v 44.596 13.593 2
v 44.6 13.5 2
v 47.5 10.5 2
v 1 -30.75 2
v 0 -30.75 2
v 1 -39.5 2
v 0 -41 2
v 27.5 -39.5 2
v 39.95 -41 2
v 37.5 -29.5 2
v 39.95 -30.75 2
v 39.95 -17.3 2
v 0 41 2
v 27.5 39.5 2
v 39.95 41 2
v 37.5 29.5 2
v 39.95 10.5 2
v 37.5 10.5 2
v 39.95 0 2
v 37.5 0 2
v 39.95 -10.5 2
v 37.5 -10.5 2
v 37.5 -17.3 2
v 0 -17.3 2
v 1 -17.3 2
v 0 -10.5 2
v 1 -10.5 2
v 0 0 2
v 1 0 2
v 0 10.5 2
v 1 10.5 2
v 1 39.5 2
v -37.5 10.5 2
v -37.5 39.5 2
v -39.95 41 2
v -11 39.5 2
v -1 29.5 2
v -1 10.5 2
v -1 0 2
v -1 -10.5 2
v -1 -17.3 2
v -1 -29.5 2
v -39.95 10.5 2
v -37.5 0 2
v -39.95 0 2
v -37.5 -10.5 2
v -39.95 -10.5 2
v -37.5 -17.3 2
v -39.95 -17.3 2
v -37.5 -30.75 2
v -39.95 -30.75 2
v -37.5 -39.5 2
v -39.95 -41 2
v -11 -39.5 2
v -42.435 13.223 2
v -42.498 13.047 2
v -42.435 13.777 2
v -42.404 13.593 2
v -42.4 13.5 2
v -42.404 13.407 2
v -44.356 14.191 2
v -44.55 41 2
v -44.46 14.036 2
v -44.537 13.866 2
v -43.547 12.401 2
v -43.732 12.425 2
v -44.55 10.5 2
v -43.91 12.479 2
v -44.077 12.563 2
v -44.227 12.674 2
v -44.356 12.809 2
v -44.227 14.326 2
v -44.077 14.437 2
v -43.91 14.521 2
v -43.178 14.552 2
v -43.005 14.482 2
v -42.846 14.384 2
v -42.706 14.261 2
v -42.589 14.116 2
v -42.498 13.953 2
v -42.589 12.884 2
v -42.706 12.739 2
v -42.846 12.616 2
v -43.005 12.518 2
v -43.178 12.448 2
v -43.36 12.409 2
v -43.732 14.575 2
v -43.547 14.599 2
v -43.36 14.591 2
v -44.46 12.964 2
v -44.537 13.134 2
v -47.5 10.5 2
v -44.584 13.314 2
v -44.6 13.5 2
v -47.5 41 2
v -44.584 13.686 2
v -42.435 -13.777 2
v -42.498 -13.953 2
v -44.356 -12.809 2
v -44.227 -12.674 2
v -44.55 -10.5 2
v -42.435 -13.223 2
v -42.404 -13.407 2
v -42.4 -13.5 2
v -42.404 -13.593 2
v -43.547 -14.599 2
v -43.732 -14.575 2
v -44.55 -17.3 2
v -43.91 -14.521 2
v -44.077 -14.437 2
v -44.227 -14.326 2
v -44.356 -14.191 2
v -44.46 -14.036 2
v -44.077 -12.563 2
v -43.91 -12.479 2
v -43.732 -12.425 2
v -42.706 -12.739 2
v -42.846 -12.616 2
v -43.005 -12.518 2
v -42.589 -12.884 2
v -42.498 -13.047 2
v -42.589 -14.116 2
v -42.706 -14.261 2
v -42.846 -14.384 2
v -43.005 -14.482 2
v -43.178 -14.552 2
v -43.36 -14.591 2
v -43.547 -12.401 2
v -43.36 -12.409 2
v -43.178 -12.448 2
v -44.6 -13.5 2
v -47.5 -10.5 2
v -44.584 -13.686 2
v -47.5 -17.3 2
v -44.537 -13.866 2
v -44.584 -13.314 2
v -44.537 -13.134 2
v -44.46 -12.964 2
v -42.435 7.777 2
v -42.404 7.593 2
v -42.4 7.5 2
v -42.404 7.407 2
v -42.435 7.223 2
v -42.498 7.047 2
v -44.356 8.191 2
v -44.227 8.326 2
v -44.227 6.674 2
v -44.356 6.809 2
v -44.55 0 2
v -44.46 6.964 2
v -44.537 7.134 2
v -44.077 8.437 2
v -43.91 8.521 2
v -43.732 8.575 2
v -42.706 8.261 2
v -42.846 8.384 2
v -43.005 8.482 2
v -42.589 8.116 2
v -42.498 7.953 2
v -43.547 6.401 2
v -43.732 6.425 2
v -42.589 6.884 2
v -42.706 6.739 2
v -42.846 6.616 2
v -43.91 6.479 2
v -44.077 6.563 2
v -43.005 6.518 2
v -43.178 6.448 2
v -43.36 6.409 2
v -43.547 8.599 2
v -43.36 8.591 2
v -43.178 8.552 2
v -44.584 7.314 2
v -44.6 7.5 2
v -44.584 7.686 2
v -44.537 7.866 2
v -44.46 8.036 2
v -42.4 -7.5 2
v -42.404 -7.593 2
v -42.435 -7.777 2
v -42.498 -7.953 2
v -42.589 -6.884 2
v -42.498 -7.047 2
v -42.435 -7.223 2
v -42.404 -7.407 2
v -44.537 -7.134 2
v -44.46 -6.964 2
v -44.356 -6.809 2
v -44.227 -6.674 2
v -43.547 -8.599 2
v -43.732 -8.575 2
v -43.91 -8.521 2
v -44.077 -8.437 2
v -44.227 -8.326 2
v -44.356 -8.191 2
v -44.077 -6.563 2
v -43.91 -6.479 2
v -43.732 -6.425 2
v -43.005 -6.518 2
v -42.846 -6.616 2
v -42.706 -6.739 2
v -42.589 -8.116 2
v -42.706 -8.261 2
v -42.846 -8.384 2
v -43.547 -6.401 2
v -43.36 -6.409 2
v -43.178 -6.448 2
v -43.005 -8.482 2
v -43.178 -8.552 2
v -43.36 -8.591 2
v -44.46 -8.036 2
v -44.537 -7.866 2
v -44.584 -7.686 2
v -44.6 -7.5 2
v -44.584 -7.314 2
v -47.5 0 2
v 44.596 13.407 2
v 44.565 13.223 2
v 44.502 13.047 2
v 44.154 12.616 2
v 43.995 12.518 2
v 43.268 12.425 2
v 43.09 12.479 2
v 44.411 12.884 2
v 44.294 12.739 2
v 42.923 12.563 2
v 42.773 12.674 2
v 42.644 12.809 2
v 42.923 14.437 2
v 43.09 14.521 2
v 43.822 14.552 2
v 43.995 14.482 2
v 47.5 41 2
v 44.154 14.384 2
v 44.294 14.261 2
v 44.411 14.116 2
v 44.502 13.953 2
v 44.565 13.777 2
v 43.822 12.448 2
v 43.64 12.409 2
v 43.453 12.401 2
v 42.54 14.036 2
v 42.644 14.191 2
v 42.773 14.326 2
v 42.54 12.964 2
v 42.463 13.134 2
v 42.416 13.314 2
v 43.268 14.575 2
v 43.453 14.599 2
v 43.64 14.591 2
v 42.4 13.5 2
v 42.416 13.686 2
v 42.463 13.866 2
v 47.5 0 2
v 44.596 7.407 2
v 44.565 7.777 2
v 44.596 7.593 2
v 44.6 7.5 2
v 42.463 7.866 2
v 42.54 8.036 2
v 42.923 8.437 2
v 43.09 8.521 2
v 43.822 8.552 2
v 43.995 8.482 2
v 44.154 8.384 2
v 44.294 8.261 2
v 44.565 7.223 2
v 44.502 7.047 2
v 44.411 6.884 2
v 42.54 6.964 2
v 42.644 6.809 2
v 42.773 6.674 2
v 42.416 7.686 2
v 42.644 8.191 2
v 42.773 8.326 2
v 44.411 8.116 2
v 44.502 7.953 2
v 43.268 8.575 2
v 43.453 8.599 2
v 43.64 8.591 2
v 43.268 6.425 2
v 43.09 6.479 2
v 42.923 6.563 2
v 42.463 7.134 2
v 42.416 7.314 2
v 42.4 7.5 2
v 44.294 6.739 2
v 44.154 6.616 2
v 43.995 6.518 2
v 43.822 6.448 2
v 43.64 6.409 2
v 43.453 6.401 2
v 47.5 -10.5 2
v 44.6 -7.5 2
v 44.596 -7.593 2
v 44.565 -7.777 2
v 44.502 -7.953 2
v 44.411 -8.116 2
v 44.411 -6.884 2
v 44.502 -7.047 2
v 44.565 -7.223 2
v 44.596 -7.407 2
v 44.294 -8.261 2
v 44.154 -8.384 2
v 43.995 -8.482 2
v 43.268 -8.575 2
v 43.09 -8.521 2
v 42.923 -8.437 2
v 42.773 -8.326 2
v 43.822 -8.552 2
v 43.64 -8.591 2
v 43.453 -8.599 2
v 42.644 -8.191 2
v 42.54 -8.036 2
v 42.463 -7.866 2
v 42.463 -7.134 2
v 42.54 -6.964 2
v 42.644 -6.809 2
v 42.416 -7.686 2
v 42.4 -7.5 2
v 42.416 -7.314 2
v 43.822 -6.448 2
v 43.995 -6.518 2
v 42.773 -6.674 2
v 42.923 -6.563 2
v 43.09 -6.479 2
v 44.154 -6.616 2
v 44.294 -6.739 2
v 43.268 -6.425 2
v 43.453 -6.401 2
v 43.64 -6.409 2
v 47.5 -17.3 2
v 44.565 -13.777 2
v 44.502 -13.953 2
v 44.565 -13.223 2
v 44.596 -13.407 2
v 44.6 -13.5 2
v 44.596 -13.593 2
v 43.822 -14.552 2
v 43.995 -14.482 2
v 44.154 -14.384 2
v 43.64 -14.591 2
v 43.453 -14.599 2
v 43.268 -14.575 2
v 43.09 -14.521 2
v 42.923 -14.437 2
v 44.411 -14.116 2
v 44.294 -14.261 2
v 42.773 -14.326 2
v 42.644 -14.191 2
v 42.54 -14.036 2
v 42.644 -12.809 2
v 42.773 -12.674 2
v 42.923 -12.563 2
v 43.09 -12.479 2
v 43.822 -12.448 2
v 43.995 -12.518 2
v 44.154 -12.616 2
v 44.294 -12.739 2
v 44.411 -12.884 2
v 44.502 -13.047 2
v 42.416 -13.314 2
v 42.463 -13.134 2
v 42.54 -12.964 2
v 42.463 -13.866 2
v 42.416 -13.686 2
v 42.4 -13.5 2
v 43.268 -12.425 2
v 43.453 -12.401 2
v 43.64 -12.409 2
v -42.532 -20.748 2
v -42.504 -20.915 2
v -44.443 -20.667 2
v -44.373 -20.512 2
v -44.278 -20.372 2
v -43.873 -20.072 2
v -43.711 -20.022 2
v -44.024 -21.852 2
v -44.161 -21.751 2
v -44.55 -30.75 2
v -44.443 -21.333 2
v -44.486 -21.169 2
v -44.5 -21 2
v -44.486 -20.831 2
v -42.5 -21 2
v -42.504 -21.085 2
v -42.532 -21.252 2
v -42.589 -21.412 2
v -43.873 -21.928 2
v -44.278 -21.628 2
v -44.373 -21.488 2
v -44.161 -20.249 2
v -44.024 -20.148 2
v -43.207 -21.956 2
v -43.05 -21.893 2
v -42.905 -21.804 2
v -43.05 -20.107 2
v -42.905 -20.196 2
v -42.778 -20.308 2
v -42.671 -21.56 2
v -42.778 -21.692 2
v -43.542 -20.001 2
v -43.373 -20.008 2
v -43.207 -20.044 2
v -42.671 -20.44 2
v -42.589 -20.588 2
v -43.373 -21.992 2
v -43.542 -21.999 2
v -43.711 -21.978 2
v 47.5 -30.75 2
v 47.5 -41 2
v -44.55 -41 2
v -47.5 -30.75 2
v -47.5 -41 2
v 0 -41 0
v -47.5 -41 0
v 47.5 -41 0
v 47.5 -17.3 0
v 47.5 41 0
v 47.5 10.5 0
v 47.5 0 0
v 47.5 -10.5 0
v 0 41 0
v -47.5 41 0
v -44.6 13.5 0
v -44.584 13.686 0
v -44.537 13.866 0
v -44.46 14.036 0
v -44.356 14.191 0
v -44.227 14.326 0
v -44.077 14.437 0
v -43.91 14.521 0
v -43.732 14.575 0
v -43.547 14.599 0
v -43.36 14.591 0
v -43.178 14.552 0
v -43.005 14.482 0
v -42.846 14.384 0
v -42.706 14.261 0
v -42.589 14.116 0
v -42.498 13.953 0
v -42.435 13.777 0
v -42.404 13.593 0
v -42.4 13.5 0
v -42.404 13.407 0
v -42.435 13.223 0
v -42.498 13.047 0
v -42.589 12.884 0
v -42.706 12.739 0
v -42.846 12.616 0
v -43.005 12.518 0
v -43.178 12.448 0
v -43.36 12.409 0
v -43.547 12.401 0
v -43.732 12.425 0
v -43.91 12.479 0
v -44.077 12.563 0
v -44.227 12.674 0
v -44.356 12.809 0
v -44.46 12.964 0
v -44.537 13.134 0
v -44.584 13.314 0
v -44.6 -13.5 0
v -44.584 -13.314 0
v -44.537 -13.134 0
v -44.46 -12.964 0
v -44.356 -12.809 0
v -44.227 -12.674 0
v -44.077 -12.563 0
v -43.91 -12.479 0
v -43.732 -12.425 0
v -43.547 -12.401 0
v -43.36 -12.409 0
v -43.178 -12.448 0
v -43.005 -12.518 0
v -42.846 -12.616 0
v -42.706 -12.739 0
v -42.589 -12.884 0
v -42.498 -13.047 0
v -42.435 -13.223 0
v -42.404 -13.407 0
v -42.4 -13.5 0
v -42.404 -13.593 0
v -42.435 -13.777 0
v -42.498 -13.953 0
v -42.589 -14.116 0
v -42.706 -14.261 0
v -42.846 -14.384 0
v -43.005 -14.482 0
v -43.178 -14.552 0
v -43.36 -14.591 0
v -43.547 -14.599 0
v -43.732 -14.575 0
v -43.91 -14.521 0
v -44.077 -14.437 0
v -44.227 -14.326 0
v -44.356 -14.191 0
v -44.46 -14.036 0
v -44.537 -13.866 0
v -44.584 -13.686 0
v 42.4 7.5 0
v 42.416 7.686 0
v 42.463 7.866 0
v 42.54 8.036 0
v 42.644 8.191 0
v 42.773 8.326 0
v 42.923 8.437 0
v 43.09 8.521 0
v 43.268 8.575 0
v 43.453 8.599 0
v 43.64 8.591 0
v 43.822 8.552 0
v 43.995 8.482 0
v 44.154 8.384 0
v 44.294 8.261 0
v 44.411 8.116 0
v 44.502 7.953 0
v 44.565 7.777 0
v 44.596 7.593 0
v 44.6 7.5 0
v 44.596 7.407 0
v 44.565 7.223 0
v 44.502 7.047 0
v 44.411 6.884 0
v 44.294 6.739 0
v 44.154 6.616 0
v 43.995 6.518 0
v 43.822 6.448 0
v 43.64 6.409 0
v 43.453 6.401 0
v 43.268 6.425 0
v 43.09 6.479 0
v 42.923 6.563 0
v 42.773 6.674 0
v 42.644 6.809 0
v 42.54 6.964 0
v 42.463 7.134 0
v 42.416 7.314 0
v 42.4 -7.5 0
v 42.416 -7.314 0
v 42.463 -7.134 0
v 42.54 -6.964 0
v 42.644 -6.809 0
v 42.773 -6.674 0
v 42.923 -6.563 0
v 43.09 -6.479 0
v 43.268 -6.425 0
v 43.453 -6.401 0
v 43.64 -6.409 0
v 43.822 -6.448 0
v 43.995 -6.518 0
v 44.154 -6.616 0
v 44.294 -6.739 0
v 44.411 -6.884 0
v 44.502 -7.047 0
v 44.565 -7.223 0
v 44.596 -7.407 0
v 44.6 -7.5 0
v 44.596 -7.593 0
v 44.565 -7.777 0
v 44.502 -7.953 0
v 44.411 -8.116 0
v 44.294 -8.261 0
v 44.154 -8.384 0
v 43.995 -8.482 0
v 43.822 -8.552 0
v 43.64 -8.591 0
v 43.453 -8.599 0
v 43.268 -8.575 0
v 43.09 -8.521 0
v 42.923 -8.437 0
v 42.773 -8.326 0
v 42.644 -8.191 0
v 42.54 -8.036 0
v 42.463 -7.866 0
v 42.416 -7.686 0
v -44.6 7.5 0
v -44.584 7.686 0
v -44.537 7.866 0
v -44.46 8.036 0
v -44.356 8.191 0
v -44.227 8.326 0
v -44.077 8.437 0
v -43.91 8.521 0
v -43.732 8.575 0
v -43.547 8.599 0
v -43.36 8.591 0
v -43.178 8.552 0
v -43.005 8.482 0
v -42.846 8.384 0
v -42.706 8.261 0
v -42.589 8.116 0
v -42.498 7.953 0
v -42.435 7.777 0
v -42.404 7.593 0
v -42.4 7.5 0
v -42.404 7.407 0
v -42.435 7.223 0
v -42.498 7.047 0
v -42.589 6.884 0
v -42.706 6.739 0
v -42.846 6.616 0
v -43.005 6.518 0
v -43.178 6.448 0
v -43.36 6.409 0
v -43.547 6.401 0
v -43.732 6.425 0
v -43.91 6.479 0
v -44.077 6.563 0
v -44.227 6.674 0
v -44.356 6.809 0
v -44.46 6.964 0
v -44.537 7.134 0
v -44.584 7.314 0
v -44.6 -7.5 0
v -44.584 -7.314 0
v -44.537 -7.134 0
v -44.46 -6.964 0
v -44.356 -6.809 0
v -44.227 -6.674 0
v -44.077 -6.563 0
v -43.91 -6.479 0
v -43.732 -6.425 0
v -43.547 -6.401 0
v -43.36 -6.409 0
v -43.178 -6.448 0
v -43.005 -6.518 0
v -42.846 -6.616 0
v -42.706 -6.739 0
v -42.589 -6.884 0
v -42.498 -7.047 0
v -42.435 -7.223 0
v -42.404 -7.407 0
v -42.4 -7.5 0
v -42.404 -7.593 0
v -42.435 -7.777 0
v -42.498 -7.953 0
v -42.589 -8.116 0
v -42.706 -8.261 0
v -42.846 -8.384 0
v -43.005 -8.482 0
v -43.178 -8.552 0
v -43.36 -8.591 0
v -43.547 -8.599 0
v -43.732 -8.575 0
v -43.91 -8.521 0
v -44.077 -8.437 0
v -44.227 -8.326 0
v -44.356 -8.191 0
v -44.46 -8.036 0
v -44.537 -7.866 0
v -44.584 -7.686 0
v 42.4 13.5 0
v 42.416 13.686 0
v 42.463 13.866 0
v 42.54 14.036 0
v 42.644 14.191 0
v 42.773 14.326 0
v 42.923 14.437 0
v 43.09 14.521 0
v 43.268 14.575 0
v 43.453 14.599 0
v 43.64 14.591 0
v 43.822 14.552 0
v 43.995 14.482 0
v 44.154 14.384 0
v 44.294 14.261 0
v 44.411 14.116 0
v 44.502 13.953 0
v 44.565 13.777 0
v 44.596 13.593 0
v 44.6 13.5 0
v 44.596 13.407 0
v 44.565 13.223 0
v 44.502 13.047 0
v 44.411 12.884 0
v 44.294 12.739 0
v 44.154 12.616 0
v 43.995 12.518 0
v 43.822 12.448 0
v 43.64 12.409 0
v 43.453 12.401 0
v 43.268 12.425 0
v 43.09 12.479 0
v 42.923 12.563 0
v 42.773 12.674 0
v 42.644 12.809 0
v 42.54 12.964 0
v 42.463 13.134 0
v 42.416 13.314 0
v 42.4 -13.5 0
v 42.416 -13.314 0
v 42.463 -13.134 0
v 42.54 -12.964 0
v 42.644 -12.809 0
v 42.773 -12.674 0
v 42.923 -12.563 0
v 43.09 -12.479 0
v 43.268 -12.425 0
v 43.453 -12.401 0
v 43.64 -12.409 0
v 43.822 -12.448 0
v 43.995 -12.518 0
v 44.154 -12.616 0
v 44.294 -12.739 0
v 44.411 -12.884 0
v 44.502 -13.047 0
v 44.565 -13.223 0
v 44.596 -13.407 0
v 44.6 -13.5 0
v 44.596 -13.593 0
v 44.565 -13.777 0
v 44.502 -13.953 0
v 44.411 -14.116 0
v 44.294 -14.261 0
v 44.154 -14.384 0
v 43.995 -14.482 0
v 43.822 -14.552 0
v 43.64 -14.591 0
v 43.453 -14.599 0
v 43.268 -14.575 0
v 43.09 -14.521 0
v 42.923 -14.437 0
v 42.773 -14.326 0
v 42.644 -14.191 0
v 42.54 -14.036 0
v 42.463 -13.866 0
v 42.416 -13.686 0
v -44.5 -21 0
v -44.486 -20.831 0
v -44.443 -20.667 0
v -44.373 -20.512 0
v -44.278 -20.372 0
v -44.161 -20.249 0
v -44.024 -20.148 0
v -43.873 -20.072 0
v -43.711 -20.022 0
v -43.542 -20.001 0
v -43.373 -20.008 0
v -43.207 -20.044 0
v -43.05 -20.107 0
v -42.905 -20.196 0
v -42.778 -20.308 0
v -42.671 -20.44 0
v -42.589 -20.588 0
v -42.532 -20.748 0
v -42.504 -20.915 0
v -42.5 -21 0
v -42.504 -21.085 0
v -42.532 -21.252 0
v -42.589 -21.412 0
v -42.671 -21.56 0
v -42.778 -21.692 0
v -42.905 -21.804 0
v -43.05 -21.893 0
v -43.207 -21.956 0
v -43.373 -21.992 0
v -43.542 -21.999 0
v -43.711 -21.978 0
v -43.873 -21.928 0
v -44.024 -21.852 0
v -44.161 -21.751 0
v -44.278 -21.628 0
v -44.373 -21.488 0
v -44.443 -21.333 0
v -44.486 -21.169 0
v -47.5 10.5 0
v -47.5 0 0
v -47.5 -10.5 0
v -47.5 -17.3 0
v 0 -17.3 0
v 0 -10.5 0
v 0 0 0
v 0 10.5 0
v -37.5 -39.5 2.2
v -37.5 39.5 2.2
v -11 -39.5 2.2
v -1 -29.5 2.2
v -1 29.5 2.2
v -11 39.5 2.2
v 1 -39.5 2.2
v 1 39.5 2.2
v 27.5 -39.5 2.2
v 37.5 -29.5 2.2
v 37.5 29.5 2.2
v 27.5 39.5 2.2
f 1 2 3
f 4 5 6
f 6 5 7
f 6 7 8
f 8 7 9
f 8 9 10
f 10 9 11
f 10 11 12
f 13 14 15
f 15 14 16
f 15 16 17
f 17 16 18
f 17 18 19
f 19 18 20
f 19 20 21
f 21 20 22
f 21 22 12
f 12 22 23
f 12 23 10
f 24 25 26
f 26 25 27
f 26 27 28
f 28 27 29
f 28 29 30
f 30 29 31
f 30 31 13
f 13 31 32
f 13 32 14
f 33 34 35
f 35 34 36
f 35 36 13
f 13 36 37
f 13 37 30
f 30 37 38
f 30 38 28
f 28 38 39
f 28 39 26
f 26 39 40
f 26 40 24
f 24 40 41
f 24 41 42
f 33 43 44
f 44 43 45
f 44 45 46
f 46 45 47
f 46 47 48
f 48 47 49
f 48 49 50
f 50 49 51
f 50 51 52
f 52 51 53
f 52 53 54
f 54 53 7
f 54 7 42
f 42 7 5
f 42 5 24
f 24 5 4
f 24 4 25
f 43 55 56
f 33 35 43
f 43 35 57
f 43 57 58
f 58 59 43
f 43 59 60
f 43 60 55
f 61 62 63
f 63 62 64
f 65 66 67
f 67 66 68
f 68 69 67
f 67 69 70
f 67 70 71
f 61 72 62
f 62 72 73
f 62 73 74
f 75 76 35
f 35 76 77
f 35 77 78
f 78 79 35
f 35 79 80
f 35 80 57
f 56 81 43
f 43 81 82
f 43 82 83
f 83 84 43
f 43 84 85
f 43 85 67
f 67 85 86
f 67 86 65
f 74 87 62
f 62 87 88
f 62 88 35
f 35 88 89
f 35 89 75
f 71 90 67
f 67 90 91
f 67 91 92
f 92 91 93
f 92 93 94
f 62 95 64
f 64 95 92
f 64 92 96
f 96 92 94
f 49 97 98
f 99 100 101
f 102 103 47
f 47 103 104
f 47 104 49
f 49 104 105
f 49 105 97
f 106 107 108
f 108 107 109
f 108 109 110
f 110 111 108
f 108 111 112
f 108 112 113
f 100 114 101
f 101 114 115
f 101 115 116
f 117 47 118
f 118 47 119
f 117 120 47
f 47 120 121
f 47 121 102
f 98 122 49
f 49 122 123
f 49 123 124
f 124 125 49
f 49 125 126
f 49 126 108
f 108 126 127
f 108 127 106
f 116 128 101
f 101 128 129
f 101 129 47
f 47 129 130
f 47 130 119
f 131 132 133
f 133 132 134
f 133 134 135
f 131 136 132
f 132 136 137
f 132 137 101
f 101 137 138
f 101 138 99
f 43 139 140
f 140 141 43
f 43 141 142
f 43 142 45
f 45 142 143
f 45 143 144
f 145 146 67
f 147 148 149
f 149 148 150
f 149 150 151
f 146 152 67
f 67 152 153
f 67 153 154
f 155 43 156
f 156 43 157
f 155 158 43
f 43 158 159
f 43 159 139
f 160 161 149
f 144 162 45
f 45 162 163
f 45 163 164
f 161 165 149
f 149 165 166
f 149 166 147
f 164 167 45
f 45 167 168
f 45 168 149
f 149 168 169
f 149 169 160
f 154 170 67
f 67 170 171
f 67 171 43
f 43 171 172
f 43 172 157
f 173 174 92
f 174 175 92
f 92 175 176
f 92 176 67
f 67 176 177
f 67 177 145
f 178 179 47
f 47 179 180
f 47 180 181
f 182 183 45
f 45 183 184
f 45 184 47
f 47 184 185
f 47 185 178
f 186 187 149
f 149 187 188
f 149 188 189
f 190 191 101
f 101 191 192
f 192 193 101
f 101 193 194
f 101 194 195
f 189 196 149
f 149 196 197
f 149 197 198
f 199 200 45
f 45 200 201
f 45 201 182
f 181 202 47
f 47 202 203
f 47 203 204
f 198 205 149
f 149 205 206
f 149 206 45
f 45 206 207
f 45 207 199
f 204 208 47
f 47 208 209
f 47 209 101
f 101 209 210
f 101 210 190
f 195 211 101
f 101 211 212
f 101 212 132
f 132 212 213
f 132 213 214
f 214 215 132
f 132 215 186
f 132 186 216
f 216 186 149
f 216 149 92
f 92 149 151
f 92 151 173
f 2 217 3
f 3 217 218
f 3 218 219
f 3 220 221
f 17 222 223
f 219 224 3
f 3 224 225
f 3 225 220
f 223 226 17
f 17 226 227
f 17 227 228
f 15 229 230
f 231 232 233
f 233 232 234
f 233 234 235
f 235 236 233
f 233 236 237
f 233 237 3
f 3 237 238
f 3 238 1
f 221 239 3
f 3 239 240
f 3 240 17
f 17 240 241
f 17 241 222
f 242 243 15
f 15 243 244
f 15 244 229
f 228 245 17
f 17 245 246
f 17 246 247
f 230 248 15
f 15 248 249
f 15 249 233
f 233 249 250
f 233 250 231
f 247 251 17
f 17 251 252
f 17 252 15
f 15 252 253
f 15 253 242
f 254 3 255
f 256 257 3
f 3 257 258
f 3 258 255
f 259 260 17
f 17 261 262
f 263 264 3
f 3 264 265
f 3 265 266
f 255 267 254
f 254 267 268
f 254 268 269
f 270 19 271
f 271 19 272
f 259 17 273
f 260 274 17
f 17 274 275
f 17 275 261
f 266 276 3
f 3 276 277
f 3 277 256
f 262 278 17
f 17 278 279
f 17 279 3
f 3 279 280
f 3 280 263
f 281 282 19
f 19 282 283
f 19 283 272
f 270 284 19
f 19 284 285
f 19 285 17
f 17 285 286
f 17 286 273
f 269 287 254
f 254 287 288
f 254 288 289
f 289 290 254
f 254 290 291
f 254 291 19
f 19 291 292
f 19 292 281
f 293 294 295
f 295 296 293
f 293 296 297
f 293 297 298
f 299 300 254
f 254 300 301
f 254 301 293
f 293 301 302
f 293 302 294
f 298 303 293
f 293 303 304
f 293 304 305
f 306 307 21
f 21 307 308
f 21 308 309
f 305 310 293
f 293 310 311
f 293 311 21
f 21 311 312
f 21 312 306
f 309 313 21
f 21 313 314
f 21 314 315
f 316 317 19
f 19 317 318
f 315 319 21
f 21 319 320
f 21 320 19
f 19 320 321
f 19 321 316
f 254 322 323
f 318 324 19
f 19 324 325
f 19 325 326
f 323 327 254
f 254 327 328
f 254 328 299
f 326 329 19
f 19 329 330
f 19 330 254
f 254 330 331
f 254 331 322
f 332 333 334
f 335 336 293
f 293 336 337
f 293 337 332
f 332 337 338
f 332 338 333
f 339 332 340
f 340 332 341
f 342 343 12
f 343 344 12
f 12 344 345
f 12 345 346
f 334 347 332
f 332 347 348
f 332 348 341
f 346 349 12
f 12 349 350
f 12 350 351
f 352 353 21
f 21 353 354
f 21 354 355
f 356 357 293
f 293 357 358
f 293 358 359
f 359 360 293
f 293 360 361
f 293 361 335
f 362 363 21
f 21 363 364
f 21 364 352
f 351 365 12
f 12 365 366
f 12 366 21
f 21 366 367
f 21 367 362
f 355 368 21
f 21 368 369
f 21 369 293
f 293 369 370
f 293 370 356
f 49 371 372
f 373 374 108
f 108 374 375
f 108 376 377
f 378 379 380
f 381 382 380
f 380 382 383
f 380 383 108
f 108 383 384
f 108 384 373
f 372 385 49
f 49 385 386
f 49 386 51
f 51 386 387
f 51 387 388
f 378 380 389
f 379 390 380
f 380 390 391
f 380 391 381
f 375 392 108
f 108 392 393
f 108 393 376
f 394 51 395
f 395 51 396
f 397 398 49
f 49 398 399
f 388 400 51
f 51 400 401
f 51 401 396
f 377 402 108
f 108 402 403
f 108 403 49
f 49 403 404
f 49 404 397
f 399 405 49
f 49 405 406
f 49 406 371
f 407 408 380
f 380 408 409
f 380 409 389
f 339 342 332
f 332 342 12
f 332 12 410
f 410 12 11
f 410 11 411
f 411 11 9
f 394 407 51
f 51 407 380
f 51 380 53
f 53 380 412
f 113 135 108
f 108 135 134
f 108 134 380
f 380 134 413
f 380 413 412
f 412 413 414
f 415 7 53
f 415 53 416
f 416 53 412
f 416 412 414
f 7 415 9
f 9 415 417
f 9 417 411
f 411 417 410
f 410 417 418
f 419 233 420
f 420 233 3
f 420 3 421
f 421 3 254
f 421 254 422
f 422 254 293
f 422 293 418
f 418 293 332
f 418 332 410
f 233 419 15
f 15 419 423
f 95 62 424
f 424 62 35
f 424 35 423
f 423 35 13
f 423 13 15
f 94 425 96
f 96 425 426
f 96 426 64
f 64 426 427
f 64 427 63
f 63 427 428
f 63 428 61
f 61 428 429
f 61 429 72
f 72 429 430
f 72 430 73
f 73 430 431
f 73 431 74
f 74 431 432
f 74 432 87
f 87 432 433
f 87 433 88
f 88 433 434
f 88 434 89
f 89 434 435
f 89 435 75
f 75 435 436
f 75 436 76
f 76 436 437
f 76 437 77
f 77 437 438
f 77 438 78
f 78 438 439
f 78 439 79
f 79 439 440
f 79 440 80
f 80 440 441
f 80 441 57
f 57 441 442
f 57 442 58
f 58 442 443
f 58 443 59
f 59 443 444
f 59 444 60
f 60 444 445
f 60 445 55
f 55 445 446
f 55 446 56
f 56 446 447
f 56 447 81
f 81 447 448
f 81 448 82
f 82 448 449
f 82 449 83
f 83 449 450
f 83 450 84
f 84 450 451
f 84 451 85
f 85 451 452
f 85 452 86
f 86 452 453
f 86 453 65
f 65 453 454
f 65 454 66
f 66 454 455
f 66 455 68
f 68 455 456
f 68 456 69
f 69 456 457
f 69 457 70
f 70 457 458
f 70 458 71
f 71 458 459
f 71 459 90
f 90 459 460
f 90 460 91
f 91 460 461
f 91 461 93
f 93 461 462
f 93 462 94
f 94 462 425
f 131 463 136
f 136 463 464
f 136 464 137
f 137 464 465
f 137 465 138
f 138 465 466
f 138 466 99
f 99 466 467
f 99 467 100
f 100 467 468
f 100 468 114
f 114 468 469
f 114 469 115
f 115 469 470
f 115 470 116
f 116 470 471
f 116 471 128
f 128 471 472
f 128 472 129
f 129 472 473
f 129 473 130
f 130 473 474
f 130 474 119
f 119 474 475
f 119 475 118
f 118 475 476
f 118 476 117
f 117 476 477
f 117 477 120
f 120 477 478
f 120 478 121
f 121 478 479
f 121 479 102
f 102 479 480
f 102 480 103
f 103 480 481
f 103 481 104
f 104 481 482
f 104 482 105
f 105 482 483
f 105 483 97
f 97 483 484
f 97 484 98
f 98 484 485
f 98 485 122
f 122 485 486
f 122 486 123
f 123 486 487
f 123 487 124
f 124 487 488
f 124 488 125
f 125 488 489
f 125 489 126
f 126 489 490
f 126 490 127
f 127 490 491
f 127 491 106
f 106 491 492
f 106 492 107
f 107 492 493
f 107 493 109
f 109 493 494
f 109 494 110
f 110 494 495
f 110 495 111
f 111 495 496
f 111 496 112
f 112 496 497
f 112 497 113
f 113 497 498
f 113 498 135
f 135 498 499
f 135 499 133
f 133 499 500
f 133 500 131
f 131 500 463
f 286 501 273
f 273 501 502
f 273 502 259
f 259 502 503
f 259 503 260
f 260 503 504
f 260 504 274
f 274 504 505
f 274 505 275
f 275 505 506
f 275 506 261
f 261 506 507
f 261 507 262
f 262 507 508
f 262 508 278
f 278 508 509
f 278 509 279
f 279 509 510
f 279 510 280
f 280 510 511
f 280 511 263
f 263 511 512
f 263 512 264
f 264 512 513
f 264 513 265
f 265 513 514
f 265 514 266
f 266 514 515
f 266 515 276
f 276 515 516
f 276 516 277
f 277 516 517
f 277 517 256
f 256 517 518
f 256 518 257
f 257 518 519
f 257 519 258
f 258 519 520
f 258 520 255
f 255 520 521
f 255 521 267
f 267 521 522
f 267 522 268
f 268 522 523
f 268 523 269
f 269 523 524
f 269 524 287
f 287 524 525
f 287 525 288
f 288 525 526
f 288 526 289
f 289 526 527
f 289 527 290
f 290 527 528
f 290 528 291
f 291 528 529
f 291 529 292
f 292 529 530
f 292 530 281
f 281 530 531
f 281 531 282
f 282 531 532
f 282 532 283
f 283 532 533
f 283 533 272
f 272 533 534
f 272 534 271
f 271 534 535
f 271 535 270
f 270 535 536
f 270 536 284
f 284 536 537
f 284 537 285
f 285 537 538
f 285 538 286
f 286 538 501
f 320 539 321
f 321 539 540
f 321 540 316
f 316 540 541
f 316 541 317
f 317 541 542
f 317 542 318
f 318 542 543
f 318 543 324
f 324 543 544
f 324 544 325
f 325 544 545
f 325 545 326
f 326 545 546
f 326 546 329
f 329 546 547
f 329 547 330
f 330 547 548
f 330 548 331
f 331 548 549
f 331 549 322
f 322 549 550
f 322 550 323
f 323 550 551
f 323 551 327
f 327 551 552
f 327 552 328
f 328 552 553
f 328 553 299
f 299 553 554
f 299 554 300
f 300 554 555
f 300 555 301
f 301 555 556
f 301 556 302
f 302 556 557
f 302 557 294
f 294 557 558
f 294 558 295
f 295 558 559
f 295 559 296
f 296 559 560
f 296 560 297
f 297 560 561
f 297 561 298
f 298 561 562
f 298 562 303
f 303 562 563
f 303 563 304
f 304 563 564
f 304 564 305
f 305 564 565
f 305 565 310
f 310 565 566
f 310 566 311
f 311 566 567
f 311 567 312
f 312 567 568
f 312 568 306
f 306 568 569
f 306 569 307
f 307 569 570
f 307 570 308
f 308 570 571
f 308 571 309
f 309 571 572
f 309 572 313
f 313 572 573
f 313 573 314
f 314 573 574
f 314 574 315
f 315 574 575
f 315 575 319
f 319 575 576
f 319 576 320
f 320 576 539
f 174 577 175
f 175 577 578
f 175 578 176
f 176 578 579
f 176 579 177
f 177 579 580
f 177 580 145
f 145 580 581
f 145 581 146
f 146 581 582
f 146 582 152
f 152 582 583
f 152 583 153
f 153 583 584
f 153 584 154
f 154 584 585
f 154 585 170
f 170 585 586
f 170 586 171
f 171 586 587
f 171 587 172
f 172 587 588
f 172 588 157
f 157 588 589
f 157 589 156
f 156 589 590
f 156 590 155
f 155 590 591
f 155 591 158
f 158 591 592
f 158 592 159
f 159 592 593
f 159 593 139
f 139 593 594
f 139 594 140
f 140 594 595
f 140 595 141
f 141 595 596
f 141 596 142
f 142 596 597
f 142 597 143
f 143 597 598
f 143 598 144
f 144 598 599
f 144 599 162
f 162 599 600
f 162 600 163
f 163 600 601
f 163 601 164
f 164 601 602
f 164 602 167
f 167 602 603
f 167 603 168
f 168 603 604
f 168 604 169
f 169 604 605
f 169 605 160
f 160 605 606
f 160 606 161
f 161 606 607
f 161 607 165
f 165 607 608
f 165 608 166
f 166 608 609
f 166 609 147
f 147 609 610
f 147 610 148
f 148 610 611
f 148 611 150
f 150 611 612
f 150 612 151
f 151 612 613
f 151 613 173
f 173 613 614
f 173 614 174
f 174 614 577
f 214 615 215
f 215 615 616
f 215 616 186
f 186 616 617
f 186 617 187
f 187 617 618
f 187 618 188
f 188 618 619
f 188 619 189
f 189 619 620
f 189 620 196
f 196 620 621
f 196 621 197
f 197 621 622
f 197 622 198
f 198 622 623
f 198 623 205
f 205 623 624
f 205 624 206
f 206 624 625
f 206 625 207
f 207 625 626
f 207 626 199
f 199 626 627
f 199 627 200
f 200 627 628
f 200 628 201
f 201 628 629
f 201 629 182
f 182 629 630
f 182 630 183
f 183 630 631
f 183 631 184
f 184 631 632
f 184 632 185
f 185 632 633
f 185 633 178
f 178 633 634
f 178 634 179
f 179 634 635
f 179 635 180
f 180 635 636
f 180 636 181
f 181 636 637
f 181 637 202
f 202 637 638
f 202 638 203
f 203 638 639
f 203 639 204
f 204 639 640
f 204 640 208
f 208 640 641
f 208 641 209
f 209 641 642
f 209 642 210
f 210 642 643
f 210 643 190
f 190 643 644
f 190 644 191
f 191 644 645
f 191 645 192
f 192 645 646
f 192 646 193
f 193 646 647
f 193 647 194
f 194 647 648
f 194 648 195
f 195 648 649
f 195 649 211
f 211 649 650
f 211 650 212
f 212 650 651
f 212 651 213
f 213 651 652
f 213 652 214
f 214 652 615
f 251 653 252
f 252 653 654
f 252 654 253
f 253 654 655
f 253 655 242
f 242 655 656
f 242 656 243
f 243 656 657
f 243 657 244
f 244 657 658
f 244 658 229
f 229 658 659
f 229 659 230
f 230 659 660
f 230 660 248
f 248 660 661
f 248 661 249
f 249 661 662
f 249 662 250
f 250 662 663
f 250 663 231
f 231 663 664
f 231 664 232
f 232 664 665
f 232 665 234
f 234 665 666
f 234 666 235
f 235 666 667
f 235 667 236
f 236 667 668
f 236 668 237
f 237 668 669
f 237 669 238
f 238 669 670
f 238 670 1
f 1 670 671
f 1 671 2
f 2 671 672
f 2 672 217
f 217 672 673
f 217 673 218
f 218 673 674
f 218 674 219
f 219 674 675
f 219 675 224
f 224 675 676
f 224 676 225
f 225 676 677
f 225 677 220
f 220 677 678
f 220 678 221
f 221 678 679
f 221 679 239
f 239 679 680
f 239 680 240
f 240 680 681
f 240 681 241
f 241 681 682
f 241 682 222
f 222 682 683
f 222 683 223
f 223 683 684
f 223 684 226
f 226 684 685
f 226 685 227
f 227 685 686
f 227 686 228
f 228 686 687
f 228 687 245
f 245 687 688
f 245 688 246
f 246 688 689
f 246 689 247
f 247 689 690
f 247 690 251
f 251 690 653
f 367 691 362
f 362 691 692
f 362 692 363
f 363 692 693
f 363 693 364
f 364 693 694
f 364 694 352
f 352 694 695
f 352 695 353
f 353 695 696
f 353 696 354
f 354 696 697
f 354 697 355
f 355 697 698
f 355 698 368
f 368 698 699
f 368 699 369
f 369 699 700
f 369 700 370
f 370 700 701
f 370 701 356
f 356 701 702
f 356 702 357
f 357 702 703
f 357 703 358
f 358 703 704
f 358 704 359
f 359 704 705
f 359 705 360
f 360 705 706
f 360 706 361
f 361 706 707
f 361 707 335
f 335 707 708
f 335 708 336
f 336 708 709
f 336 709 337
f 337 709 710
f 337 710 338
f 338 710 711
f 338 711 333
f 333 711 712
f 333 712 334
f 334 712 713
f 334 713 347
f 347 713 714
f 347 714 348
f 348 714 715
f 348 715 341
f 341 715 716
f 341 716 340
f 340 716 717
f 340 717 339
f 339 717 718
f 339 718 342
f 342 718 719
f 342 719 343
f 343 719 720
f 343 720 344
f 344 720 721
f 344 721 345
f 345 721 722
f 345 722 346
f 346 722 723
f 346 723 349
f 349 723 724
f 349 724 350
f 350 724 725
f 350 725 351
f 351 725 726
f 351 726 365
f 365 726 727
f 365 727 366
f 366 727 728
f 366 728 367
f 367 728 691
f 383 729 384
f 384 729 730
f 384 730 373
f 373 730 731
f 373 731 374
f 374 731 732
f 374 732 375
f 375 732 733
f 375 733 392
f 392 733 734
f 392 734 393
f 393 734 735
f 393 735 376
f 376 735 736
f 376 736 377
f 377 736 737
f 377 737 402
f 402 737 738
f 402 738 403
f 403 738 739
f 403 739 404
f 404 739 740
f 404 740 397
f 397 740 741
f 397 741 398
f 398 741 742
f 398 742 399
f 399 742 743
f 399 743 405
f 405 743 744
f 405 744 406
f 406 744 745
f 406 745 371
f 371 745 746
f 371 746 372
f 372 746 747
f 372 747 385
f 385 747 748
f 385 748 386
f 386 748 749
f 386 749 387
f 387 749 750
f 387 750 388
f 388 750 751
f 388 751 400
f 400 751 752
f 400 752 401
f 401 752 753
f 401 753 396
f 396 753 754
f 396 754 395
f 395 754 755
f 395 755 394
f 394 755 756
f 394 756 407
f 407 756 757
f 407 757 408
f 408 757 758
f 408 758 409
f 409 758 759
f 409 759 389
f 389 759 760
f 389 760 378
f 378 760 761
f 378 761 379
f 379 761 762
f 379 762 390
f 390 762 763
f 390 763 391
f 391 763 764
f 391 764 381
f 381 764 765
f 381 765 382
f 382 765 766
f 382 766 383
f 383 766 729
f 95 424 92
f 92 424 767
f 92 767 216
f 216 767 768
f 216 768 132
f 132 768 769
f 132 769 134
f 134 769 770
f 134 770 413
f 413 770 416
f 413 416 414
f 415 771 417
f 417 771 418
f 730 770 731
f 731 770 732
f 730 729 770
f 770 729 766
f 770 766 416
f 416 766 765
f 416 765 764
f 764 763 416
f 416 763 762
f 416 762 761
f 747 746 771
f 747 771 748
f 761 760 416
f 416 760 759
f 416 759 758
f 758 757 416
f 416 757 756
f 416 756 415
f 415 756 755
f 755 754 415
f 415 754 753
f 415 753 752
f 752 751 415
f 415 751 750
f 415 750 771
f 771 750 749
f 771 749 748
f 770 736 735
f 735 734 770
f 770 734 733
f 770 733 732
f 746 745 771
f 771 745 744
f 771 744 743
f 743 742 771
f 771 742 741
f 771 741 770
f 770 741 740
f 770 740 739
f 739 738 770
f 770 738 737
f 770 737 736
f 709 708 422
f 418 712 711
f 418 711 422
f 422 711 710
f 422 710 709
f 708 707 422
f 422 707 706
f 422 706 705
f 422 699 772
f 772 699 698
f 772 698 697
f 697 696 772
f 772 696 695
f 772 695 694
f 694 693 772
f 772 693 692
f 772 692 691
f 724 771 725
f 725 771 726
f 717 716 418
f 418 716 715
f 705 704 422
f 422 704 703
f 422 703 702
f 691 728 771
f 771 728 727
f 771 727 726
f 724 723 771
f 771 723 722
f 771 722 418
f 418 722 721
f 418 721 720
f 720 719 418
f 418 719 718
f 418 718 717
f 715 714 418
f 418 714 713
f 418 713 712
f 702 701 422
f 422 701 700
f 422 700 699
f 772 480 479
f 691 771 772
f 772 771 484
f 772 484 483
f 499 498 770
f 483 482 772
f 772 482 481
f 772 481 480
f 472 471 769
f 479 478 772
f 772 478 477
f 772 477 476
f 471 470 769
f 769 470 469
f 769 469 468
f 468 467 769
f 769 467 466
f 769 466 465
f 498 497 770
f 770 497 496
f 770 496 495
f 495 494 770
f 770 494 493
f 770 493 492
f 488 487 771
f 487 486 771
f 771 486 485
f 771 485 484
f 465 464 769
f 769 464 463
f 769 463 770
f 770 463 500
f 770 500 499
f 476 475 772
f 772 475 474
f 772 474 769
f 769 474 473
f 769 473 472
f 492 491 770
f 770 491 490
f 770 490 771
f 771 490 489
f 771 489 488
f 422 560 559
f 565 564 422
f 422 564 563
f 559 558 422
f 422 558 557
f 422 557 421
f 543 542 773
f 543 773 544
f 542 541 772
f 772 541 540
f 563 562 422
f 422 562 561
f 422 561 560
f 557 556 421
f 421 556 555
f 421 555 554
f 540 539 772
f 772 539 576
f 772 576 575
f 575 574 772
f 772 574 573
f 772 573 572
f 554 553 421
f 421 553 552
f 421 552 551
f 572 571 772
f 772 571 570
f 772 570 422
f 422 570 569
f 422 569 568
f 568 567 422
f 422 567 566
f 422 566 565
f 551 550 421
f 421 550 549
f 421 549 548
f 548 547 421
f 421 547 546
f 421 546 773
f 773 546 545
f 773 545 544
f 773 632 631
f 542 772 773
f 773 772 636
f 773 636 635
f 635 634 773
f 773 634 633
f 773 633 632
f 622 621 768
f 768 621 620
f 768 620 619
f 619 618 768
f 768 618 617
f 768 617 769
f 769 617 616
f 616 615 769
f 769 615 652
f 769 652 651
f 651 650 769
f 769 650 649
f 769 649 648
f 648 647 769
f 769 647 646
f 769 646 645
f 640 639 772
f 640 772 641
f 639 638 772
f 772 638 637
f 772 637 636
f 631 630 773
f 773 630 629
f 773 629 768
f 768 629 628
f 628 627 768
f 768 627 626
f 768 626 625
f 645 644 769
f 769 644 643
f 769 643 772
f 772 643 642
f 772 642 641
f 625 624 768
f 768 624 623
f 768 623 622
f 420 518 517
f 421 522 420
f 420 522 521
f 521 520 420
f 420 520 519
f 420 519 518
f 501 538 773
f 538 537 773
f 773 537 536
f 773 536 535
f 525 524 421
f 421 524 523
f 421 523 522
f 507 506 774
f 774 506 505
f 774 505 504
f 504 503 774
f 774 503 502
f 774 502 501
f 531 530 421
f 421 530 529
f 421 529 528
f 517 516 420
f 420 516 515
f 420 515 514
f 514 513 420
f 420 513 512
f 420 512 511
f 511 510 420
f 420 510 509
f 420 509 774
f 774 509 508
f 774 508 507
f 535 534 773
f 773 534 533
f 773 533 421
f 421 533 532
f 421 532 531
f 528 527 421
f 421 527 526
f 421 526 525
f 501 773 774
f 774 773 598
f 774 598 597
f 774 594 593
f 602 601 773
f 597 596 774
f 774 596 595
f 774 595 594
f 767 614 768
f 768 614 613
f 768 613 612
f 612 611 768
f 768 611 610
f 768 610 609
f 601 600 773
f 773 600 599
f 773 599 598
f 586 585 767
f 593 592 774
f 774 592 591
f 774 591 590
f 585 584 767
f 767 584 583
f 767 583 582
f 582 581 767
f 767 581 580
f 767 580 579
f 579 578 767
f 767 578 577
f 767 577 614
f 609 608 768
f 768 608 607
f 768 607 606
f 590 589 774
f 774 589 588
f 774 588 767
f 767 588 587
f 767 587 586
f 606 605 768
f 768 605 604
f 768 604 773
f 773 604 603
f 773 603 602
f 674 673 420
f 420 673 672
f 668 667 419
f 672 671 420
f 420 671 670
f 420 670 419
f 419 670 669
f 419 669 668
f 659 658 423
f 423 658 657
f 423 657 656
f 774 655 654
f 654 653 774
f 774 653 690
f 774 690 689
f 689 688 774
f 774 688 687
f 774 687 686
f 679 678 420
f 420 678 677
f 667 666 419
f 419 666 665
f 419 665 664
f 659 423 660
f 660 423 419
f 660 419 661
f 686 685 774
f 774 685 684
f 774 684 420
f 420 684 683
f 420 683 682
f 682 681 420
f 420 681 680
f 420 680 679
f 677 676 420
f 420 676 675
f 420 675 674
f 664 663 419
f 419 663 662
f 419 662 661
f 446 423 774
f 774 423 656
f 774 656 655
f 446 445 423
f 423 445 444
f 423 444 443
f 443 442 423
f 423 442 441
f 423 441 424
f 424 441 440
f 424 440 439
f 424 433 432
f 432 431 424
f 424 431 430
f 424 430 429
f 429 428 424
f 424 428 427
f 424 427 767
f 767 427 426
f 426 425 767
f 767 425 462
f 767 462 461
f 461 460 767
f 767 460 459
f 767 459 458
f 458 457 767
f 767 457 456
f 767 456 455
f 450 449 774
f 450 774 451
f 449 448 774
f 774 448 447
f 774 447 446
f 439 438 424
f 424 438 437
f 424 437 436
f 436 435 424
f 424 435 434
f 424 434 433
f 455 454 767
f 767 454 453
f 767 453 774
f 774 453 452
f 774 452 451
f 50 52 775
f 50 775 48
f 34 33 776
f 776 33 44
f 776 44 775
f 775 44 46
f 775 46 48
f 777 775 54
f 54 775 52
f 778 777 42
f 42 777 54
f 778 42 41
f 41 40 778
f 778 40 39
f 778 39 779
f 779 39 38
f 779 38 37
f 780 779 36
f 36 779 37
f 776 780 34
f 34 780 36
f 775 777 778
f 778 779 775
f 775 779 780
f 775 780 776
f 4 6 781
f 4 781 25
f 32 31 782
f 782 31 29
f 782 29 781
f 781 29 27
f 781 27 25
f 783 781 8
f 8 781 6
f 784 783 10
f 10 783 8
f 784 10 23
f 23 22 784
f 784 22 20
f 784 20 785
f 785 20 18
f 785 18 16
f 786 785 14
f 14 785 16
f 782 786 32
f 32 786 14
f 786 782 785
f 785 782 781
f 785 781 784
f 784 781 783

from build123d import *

# Parameters (mm, degrees)
SKETCH1_W           = 95
SKETCH1_H           = 82
SKETCH1_R           = 1.1
SKETCH1_R_2         = 1
BOSS_EXTRUDE1_DEPTH = 2
BOSS_EXTRUDE2_DEPTH = 0.2


with BuildPart() as part:
    # Sketch1 → Boss-Extrude1 (new body)
    with BuildSketch(Plane.XY):
        Rectangle(SKETCH1_W, SKETCH1_H)
        with Locations((-43.5, 13.5)):
            Circle(SKETCH1_R, mode=Mode.SUBTRACT)
        with Locations((-43.5, -13.5)):
            Circle(SKETCH1_R, mode=Mode.SUBTRACT)
        with Locations((43.5, 7.5)):
            Circle(SKETCH1_R, mode=Mode.SUBTRACT)
        with Locations((43.5, -7.5)):
            Circle(SKETCH1_R, mode=Mode.SUBTRACT)
        with Locations((-43.5, 7.5)):
            Circle(SKETCH1_R, mode=Mode.SUBTRACT)
        with Locations((-43.5, -7.5)):
            Circle(SKETCH1_R, mode=Mode.SUBTRACT)
        with Locations((43.5, 13.5)):
            Circle(SKETCH1_R, mode=Mode.SUBTRACT)
        with Locations((43.5, -13.5)):
            Circle(SKETCH1_R, mode=Mode.SUBTRACT)
        with Locations((-43.5, -21)):
            Circle(SKETCH1_R_2, mode=Mode.SUBTRACT)
    extrude(amount=BOSS_EXTRUDE1_DEPTH)

    # Sketch2 → Boss-Extrude2 (add)
    with BuildSketch(Plane.XY.offset(2)):
        Polygon((-11, 39.5), (-1, 29.5), (-1, -29.5), (-11, -39.5), (-37.5, -39.5), (-37.5, 39.5), align=None)
        Polygon((1, 39.5), (27.5, 39.5), (37.5, 29.5), (37.5, -29.5), (27.5, -39.5), (1, -39.5), align=None)
    extrude(amount=BOSS_EXTRUDE2_DEPTH)


solid = part.part
